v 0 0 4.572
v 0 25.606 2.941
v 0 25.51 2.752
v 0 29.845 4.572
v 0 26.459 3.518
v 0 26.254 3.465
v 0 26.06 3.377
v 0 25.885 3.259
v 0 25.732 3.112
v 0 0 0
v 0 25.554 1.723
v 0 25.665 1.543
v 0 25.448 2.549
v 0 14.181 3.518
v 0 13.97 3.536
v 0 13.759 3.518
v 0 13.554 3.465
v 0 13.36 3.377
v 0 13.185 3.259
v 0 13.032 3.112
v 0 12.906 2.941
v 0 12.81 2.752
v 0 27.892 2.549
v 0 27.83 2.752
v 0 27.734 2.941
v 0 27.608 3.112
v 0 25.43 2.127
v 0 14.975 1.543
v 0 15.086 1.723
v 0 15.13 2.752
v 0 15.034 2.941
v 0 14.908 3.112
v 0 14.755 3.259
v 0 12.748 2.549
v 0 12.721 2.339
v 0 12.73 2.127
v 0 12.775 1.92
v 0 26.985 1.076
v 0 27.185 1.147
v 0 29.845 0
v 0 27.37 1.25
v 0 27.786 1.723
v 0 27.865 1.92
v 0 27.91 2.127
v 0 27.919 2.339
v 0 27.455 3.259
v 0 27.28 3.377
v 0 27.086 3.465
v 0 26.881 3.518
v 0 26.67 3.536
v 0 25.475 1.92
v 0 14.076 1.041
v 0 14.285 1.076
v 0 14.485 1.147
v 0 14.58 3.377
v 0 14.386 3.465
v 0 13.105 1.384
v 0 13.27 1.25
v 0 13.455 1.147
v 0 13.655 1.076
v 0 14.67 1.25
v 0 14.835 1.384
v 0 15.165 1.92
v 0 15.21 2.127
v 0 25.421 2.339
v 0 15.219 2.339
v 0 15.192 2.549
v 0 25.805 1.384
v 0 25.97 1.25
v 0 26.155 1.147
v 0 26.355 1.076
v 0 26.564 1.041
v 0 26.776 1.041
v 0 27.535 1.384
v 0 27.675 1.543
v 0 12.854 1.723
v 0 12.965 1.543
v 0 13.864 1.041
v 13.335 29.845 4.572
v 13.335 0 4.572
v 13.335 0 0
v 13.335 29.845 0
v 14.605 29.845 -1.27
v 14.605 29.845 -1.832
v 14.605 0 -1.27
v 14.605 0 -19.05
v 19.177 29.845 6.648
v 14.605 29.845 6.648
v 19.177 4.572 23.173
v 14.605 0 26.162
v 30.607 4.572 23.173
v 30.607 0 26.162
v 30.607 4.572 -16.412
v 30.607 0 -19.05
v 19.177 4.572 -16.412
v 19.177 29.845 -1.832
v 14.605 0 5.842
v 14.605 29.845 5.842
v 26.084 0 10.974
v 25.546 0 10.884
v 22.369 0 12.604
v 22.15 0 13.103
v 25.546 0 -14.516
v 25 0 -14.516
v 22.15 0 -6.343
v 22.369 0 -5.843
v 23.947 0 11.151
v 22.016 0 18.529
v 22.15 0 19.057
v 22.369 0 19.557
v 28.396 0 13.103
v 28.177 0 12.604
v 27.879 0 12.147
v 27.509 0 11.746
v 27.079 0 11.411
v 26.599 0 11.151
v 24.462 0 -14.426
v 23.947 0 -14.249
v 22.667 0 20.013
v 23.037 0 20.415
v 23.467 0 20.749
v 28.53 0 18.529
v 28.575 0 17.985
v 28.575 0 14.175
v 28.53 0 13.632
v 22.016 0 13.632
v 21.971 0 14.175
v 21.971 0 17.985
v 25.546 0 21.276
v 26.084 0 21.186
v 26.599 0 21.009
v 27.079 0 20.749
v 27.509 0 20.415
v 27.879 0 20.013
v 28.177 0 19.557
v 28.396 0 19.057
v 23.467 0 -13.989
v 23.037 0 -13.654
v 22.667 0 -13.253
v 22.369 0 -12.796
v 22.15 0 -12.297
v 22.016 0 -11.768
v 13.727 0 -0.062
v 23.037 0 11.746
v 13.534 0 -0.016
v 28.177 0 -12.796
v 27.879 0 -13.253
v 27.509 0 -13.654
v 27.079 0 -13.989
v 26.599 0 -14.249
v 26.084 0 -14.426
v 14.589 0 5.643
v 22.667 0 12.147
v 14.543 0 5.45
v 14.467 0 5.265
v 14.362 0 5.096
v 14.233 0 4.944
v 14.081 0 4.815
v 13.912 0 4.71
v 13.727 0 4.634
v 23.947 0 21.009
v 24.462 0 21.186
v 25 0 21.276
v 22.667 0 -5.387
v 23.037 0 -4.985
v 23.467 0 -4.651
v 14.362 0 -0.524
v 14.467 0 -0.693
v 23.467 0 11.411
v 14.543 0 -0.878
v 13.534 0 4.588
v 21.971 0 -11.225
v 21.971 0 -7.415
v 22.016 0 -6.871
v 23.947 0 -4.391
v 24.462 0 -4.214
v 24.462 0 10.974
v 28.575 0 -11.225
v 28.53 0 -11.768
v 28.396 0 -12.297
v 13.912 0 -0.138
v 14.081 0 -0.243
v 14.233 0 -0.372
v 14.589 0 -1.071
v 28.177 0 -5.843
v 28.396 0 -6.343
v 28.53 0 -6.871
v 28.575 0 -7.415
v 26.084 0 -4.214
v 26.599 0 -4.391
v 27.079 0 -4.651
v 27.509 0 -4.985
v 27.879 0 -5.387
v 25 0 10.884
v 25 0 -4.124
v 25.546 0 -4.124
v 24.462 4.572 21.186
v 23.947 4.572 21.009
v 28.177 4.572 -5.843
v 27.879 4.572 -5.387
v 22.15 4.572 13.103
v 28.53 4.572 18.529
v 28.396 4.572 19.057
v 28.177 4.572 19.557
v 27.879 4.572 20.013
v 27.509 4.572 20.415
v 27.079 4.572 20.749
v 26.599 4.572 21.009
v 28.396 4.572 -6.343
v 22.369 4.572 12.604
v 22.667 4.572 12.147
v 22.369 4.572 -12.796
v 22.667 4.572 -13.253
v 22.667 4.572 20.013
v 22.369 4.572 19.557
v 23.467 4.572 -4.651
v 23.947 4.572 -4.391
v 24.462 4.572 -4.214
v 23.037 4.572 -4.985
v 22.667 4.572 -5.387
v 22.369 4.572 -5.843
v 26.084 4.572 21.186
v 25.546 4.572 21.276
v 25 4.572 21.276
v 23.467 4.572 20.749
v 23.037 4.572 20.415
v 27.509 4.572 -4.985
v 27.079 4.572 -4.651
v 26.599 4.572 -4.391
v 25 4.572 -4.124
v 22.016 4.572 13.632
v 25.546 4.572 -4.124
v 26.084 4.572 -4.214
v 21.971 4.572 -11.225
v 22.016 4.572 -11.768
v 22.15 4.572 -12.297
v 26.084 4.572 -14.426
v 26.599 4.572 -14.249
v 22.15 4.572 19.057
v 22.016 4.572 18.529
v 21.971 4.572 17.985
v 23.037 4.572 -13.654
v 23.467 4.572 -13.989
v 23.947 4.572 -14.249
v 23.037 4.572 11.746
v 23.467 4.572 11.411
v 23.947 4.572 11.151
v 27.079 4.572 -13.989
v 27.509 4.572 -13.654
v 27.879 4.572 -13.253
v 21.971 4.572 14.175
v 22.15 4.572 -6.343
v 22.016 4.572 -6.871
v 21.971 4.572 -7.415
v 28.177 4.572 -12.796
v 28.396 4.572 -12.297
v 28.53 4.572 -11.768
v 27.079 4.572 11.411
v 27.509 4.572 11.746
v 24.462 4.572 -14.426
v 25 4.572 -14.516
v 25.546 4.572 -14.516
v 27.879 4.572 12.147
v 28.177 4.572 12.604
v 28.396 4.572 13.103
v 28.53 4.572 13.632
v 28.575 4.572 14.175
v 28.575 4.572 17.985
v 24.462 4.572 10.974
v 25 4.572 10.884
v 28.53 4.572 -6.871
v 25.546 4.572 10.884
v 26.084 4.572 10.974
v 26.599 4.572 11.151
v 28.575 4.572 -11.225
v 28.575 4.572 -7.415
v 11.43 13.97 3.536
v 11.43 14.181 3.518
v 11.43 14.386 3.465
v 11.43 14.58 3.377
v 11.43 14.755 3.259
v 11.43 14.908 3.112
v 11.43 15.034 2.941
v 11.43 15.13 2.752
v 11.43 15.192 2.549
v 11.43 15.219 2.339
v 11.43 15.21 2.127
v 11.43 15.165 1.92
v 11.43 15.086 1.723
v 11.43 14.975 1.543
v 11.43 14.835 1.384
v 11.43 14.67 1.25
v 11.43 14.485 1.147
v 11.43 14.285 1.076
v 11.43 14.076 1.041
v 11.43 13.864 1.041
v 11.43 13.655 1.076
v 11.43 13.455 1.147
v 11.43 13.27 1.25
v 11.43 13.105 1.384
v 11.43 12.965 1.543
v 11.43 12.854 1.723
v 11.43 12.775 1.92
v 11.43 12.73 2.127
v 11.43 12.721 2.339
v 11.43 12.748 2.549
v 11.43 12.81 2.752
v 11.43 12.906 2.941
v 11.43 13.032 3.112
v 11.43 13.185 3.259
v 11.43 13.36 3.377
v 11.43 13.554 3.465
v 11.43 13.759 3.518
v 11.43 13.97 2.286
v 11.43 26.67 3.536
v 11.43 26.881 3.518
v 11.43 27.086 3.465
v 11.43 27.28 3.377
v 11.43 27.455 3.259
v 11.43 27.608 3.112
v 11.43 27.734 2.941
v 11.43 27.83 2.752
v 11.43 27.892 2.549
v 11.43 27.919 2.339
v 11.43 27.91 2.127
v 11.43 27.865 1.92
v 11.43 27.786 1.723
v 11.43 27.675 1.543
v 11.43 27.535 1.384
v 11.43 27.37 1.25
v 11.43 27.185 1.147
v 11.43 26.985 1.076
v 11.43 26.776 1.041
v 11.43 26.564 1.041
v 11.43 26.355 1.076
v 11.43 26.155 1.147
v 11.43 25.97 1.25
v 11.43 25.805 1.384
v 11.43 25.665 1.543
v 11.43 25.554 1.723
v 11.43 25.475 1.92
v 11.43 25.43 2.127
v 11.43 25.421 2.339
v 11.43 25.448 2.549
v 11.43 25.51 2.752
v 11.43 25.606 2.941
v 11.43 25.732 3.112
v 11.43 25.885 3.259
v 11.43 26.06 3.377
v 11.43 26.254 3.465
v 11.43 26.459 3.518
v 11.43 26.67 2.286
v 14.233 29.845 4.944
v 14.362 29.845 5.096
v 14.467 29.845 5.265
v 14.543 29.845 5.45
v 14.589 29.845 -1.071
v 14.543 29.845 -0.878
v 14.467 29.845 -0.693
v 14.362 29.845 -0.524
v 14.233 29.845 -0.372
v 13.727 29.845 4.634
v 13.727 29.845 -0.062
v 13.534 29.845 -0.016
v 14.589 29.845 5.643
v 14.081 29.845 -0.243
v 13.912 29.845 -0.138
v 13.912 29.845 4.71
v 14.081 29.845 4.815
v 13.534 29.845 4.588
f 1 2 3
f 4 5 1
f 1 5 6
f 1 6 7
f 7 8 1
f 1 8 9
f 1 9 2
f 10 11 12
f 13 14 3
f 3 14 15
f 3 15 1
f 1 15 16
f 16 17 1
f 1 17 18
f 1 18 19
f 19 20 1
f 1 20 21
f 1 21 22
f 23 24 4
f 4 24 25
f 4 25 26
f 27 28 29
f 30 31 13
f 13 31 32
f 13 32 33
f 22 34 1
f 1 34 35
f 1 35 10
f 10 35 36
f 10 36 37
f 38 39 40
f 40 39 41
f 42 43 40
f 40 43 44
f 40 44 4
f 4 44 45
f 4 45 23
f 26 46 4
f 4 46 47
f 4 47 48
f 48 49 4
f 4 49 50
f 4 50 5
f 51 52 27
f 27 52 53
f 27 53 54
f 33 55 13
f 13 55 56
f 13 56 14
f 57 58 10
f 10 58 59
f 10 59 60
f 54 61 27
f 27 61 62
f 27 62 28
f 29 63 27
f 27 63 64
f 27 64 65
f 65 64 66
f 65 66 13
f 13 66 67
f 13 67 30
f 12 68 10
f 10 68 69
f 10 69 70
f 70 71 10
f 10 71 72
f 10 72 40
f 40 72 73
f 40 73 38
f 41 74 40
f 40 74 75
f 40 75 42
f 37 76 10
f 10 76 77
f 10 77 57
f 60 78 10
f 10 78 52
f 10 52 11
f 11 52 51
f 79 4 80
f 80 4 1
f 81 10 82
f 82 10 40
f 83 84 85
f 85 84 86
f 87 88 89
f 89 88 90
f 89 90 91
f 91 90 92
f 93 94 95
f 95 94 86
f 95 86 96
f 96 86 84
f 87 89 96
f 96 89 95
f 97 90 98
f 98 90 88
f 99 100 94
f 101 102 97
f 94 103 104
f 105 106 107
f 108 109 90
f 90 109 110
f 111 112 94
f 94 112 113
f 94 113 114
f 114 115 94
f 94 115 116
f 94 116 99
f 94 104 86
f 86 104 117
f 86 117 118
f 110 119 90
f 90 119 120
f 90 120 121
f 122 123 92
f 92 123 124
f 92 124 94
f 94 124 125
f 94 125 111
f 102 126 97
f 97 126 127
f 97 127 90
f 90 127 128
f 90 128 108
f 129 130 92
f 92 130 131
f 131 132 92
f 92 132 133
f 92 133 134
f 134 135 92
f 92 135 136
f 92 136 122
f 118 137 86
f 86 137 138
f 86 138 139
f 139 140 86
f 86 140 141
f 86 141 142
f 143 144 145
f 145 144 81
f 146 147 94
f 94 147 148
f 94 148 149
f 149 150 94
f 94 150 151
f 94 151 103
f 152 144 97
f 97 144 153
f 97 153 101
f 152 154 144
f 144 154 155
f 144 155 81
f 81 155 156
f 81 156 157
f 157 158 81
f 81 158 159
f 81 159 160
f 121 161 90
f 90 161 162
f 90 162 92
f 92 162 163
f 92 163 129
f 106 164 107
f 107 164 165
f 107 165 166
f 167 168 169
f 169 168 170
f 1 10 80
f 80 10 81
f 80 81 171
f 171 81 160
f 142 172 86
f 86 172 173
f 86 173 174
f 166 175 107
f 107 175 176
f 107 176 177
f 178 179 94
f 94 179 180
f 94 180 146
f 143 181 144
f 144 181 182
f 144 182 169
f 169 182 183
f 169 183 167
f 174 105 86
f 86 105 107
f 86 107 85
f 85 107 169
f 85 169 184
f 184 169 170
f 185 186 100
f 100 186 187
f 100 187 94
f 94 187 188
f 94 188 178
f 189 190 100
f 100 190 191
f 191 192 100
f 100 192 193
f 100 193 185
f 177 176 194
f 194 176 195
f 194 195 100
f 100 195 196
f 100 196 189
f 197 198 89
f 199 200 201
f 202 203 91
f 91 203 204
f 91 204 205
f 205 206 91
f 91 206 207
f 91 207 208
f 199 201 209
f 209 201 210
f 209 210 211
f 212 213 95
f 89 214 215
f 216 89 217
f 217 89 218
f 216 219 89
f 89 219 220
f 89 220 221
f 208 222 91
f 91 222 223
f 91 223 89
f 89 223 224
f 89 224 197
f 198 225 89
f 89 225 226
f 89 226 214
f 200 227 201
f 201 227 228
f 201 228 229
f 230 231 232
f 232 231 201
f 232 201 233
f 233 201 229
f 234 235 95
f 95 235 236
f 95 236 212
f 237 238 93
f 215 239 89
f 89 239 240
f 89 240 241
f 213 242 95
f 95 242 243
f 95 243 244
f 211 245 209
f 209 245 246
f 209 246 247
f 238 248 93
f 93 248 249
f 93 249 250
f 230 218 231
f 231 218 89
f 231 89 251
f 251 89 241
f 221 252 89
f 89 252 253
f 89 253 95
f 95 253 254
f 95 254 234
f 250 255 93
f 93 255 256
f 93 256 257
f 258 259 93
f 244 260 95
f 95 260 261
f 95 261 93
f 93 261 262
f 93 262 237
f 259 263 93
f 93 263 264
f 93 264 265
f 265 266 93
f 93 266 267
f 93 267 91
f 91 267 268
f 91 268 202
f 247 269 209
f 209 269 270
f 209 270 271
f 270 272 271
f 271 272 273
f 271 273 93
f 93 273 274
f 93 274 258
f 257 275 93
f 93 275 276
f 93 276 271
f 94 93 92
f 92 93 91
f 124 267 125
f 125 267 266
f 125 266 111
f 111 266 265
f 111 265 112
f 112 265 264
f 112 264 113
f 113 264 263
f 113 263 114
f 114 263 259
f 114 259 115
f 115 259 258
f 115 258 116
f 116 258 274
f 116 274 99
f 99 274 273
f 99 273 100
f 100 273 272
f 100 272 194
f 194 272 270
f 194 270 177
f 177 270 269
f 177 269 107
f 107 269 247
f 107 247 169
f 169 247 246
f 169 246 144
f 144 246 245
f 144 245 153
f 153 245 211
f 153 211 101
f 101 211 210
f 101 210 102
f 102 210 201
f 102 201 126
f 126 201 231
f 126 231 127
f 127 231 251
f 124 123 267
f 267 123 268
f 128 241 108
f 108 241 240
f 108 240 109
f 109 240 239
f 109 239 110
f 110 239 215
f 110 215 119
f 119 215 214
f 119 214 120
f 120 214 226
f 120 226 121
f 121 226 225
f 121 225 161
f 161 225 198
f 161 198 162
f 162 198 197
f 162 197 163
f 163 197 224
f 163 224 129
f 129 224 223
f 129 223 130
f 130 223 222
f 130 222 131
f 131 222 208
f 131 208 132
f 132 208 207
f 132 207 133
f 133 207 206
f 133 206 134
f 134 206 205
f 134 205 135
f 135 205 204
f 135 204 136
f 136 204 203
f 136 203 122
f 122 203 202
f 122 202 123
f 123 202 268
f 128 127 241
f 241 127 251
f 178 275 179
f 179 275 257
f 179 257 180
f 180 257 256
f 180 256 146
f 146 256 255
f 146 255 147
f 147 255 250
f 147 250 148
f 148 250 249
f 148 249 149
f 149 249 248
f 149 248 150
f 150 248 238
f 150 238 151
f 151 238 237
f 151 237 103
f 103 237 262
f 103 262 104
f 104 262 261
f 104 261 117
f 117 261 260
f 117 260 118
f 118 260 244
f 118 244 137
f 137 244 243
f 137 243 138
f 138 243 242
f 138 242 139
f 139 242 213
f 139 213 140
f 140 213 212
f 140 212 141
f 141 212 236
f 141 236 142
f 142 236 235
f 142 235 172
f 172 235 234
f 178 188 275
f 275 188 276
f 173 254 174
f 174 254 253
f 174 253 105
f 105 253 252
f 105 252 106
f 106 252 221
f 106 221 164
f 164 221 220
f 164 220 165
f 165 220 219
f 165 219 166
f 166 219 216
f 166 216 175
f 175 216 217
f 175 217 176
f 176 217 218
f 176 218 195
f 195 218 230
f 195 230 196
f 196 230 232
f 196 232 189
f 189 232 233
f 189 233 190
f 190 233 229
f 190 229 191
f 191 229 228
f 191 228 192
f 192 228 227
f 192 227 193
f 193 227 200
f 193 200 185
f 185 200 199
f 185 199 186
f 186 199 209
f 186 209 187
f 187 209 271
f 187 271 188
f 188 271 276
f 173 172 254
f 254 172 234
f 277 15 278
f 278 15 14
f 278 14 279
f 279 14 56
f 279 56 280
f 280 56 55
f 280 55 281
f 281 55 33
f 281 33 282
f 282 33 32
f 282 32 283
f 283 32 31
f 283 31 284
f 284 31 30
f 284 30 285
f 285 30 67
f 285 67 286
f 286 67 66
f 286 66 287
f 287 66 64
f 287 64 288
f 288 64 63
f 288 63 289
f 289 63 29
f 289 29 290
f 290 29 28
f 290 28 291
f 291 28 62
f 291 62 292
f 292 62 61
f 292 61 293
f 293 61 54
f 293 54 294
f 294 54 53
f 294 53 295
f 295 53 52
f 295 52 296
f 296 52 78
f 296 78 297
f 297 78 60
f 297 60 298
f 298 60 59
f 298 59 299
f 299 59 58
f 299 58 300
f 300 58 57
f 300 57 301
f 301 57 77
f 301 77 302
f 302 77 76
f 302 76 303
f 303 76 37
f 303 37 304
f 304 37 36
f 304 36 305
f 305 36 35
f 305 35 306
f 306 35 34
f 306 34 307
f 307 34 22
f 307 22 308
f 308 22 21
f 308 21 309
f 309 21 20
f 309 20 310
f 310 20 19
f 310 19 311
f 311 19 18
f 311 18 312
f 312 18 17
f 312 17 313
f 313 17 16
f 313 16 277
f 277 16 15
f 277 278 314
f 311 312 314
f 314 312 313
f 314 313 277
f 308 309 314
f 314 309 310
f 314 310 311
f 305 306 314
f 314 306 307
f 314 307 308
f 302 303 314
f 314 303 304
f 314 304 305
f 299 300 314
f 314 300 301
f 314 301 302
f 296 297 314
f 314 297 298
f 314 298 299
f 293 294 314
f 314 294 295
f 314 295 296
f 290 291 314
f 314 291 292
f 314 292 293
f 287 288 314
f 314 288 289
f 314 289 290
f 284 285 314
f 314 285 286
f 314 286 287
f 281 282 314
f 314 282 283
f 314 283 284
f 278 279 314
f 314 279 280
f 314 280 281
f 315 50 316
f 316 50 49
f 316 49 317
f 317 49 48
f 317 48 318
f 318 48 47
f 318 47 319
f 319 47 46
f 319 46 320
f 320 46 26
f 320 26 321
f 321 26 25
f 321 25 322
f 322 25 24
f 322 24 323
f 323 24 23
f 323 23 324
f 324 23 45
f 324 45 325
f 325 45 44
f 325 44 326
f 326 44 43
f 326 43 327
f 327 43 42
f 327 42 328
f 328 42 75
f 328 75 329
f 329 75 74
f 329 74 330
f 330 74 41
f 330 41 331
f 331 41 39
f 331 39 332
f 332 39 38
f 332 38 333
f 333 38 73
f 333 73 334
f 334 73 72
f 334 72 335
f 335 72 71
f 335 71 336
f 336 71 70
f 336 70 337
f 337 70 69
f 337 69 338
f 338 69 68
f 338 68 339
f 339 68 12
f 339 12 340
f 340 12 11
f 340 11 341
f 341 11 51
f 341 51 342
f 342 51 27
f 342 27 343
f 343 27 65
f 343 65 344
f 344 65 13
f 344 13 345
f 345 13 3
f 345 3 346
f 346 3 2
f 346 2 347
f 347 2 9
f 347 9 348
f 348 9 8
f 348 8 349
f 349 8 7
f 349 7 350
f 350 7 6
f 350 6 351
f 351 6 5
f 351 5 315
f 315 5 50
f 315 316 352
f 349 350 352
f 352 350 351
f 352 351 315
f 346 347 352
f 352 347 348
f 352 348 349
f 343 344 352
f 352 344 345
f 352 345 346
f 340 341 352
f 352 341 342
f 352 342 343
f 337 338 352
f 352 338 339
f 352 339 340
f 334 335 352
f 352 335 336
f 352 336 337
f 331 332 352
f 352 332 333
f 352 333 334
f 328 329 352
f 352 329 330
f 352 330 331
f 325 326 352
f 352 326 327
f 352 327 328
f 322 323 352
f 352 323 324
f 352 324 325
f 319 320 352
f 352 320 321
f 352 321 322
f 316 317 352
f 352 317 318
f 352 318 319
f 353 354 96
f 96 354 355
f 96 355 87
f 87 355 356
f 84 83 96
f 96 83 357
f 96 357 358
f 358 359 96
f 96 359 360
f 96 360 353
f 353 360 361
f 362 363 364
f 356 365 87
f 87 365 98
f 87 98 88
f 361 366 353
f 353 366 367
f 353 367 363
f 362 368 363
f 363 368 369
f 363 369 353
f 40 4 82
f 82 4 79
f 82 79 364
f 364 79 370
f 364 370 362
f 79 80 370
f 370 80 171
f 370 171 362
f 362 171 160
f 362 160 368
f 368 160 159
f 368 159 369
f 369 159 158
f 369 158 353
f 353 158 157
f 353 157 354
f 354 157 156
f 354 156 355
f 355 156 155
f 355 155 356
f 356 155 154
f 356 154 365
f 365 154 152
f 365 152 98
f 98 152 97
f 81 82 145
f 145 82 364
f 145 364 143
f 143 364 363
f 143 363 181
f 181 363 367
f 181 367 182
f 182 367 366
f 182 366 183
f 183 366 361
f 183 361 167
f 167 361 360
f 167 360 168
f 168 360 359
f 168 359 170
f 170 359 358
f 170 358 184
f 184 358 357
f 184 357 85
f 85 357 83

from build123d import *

# Parameters (mm, degrees)
SKETCH1_W           = 14.605
SKETCH1_H           = 33.02
BOSS_EXTRUDE1_DEPTH = 4.572
BOSS_EXTRUDE2_DEPTH = 4.572
BOSS_EXTRUDE3_DEPTH = 11.43
CUT_EXTRUDE1_DEPTH  = 50.300379278
SKETCH5_R           = 1.25000004
SKETCH5_R_2         = 1.25
CUT_EXTRUDE2_DEPTH  = 11.43
SKETCH6_W           = 33.355726526
SKETCH6_H           = 18.831890795
CUT_EXTRUDE3_DEPTH  = 3.175
FILLET1_R           = 1.27


with BuildPart() as part:
    # Sketch1 → Boss-Extrude1 (new body)
    with BuildSketch(Plane.XY):
        with Locations((7.3025, 16.51)):
            Rectangle(SKETCH1_W, SKETCH1_H)
    extrude(amount=BOSS_EXTRUDE1_DEPTH)

    # Sketch2 → Boss-Extrude2 (add)
    with BuildSketch(Plane(origin=(14.605, 0, 0), x_dir=(0, 0, -1), z_dir=(1, 0, 0))):
        Polygon((-4.572, 33.02), (-26.162, 0), (19.05, 0), (0, 33.02), align=None)
    extrude(amount=BOSS_EXTRUDE2_DEPTH)

    # Sketch3 → Boss-Extrude3 (add)
    with BuildSketch(Plane(origin=(19.177, 0, 0), x_dir=(0, 0, -1), z_dir=(1, 0, 0))):
        Polygon((-23.172615385, 4.572), (16.412307692, 4.572), (19.05, 0), (-26.162, 0), align=None)
    extrude(amount=BOSS_EXTRUDE3_DEPTH)

    # Sketch4 → Cut-Extrude1 (cut, through all)
    with BuildSketch(Plane(origin=(0, 4.572, 0), x_dir=(1, 0, 0), z_dir=(0, 1, 0))):
        with BuildLine():
            Line((28.575, 11.224846154), (28.575, 7.414846154))
            ThreePointArc((28.575, 7.414846154), (25.273, 4.112846154), (21.971, 7.414846154))
            Line((21.971, 7.414846154), (21.971, 11.224846154))
            ThreePointArc((21.971, 11.224846154), (25.273, 14.526846154), (28.575, 11.224846154))
        make_face()
        with BuildLine():
            Line((28.575, -14.175153846), (28.575, -17.985153846))
            ThreePointArc((28.575, -17.985153846), (25.273, -21.287153846), (21.971, -17.985153846))
            Line((21.971, -17.985153846), (21.971, -14.175153846))
            ThreePointArc((21.971, -14.175153846), (25.273, -10.873153846), (28.575, -14.175153846))
        make_face()
    extrude(amount=-CUT_EXTRUDE1_DEPTH, mode=Mode.SUBTRACT)

    # Sketch5 → Cut-Extrude2 (cut)
    with BuildSketch(Plane.ZY):
        with Locations((2.286, 26.67)):
            Circle(SKETCH5_R)
        with Locations((2.286, 13.97)):
            Circle(SKETCH5_R_2)
    extrude(amount=-CUT_EXTRUDE2_DEPTH, mode=Mode.SUBTRACT)

    # Sketch6 → Cut-Extrude3 (cut)
    with BuildSketch(Plane(origin=(0, 33.02, 0), x_dir=(1, 0, 0), z_dir=(0, 1, 0))):
        with Locations((16.677863263, -3.376077476)):
            Rectangle(SKETCH6_W, SKETCH6_H)
    extrude(amount=-CUT_EXTRUDE3_DEPTH, mode=Mode.SUBTRACT)

    # Fillet1
    fillet1_edges = [part.edges().sort_by_distance(p)[0] for p in [
        (14.605, 14.9225, 4.572),
        (14.605, 14.9225, 0),
    ]]
    fillet(fillet1_edges, radius=FILLET1_R)


solid = part.part
